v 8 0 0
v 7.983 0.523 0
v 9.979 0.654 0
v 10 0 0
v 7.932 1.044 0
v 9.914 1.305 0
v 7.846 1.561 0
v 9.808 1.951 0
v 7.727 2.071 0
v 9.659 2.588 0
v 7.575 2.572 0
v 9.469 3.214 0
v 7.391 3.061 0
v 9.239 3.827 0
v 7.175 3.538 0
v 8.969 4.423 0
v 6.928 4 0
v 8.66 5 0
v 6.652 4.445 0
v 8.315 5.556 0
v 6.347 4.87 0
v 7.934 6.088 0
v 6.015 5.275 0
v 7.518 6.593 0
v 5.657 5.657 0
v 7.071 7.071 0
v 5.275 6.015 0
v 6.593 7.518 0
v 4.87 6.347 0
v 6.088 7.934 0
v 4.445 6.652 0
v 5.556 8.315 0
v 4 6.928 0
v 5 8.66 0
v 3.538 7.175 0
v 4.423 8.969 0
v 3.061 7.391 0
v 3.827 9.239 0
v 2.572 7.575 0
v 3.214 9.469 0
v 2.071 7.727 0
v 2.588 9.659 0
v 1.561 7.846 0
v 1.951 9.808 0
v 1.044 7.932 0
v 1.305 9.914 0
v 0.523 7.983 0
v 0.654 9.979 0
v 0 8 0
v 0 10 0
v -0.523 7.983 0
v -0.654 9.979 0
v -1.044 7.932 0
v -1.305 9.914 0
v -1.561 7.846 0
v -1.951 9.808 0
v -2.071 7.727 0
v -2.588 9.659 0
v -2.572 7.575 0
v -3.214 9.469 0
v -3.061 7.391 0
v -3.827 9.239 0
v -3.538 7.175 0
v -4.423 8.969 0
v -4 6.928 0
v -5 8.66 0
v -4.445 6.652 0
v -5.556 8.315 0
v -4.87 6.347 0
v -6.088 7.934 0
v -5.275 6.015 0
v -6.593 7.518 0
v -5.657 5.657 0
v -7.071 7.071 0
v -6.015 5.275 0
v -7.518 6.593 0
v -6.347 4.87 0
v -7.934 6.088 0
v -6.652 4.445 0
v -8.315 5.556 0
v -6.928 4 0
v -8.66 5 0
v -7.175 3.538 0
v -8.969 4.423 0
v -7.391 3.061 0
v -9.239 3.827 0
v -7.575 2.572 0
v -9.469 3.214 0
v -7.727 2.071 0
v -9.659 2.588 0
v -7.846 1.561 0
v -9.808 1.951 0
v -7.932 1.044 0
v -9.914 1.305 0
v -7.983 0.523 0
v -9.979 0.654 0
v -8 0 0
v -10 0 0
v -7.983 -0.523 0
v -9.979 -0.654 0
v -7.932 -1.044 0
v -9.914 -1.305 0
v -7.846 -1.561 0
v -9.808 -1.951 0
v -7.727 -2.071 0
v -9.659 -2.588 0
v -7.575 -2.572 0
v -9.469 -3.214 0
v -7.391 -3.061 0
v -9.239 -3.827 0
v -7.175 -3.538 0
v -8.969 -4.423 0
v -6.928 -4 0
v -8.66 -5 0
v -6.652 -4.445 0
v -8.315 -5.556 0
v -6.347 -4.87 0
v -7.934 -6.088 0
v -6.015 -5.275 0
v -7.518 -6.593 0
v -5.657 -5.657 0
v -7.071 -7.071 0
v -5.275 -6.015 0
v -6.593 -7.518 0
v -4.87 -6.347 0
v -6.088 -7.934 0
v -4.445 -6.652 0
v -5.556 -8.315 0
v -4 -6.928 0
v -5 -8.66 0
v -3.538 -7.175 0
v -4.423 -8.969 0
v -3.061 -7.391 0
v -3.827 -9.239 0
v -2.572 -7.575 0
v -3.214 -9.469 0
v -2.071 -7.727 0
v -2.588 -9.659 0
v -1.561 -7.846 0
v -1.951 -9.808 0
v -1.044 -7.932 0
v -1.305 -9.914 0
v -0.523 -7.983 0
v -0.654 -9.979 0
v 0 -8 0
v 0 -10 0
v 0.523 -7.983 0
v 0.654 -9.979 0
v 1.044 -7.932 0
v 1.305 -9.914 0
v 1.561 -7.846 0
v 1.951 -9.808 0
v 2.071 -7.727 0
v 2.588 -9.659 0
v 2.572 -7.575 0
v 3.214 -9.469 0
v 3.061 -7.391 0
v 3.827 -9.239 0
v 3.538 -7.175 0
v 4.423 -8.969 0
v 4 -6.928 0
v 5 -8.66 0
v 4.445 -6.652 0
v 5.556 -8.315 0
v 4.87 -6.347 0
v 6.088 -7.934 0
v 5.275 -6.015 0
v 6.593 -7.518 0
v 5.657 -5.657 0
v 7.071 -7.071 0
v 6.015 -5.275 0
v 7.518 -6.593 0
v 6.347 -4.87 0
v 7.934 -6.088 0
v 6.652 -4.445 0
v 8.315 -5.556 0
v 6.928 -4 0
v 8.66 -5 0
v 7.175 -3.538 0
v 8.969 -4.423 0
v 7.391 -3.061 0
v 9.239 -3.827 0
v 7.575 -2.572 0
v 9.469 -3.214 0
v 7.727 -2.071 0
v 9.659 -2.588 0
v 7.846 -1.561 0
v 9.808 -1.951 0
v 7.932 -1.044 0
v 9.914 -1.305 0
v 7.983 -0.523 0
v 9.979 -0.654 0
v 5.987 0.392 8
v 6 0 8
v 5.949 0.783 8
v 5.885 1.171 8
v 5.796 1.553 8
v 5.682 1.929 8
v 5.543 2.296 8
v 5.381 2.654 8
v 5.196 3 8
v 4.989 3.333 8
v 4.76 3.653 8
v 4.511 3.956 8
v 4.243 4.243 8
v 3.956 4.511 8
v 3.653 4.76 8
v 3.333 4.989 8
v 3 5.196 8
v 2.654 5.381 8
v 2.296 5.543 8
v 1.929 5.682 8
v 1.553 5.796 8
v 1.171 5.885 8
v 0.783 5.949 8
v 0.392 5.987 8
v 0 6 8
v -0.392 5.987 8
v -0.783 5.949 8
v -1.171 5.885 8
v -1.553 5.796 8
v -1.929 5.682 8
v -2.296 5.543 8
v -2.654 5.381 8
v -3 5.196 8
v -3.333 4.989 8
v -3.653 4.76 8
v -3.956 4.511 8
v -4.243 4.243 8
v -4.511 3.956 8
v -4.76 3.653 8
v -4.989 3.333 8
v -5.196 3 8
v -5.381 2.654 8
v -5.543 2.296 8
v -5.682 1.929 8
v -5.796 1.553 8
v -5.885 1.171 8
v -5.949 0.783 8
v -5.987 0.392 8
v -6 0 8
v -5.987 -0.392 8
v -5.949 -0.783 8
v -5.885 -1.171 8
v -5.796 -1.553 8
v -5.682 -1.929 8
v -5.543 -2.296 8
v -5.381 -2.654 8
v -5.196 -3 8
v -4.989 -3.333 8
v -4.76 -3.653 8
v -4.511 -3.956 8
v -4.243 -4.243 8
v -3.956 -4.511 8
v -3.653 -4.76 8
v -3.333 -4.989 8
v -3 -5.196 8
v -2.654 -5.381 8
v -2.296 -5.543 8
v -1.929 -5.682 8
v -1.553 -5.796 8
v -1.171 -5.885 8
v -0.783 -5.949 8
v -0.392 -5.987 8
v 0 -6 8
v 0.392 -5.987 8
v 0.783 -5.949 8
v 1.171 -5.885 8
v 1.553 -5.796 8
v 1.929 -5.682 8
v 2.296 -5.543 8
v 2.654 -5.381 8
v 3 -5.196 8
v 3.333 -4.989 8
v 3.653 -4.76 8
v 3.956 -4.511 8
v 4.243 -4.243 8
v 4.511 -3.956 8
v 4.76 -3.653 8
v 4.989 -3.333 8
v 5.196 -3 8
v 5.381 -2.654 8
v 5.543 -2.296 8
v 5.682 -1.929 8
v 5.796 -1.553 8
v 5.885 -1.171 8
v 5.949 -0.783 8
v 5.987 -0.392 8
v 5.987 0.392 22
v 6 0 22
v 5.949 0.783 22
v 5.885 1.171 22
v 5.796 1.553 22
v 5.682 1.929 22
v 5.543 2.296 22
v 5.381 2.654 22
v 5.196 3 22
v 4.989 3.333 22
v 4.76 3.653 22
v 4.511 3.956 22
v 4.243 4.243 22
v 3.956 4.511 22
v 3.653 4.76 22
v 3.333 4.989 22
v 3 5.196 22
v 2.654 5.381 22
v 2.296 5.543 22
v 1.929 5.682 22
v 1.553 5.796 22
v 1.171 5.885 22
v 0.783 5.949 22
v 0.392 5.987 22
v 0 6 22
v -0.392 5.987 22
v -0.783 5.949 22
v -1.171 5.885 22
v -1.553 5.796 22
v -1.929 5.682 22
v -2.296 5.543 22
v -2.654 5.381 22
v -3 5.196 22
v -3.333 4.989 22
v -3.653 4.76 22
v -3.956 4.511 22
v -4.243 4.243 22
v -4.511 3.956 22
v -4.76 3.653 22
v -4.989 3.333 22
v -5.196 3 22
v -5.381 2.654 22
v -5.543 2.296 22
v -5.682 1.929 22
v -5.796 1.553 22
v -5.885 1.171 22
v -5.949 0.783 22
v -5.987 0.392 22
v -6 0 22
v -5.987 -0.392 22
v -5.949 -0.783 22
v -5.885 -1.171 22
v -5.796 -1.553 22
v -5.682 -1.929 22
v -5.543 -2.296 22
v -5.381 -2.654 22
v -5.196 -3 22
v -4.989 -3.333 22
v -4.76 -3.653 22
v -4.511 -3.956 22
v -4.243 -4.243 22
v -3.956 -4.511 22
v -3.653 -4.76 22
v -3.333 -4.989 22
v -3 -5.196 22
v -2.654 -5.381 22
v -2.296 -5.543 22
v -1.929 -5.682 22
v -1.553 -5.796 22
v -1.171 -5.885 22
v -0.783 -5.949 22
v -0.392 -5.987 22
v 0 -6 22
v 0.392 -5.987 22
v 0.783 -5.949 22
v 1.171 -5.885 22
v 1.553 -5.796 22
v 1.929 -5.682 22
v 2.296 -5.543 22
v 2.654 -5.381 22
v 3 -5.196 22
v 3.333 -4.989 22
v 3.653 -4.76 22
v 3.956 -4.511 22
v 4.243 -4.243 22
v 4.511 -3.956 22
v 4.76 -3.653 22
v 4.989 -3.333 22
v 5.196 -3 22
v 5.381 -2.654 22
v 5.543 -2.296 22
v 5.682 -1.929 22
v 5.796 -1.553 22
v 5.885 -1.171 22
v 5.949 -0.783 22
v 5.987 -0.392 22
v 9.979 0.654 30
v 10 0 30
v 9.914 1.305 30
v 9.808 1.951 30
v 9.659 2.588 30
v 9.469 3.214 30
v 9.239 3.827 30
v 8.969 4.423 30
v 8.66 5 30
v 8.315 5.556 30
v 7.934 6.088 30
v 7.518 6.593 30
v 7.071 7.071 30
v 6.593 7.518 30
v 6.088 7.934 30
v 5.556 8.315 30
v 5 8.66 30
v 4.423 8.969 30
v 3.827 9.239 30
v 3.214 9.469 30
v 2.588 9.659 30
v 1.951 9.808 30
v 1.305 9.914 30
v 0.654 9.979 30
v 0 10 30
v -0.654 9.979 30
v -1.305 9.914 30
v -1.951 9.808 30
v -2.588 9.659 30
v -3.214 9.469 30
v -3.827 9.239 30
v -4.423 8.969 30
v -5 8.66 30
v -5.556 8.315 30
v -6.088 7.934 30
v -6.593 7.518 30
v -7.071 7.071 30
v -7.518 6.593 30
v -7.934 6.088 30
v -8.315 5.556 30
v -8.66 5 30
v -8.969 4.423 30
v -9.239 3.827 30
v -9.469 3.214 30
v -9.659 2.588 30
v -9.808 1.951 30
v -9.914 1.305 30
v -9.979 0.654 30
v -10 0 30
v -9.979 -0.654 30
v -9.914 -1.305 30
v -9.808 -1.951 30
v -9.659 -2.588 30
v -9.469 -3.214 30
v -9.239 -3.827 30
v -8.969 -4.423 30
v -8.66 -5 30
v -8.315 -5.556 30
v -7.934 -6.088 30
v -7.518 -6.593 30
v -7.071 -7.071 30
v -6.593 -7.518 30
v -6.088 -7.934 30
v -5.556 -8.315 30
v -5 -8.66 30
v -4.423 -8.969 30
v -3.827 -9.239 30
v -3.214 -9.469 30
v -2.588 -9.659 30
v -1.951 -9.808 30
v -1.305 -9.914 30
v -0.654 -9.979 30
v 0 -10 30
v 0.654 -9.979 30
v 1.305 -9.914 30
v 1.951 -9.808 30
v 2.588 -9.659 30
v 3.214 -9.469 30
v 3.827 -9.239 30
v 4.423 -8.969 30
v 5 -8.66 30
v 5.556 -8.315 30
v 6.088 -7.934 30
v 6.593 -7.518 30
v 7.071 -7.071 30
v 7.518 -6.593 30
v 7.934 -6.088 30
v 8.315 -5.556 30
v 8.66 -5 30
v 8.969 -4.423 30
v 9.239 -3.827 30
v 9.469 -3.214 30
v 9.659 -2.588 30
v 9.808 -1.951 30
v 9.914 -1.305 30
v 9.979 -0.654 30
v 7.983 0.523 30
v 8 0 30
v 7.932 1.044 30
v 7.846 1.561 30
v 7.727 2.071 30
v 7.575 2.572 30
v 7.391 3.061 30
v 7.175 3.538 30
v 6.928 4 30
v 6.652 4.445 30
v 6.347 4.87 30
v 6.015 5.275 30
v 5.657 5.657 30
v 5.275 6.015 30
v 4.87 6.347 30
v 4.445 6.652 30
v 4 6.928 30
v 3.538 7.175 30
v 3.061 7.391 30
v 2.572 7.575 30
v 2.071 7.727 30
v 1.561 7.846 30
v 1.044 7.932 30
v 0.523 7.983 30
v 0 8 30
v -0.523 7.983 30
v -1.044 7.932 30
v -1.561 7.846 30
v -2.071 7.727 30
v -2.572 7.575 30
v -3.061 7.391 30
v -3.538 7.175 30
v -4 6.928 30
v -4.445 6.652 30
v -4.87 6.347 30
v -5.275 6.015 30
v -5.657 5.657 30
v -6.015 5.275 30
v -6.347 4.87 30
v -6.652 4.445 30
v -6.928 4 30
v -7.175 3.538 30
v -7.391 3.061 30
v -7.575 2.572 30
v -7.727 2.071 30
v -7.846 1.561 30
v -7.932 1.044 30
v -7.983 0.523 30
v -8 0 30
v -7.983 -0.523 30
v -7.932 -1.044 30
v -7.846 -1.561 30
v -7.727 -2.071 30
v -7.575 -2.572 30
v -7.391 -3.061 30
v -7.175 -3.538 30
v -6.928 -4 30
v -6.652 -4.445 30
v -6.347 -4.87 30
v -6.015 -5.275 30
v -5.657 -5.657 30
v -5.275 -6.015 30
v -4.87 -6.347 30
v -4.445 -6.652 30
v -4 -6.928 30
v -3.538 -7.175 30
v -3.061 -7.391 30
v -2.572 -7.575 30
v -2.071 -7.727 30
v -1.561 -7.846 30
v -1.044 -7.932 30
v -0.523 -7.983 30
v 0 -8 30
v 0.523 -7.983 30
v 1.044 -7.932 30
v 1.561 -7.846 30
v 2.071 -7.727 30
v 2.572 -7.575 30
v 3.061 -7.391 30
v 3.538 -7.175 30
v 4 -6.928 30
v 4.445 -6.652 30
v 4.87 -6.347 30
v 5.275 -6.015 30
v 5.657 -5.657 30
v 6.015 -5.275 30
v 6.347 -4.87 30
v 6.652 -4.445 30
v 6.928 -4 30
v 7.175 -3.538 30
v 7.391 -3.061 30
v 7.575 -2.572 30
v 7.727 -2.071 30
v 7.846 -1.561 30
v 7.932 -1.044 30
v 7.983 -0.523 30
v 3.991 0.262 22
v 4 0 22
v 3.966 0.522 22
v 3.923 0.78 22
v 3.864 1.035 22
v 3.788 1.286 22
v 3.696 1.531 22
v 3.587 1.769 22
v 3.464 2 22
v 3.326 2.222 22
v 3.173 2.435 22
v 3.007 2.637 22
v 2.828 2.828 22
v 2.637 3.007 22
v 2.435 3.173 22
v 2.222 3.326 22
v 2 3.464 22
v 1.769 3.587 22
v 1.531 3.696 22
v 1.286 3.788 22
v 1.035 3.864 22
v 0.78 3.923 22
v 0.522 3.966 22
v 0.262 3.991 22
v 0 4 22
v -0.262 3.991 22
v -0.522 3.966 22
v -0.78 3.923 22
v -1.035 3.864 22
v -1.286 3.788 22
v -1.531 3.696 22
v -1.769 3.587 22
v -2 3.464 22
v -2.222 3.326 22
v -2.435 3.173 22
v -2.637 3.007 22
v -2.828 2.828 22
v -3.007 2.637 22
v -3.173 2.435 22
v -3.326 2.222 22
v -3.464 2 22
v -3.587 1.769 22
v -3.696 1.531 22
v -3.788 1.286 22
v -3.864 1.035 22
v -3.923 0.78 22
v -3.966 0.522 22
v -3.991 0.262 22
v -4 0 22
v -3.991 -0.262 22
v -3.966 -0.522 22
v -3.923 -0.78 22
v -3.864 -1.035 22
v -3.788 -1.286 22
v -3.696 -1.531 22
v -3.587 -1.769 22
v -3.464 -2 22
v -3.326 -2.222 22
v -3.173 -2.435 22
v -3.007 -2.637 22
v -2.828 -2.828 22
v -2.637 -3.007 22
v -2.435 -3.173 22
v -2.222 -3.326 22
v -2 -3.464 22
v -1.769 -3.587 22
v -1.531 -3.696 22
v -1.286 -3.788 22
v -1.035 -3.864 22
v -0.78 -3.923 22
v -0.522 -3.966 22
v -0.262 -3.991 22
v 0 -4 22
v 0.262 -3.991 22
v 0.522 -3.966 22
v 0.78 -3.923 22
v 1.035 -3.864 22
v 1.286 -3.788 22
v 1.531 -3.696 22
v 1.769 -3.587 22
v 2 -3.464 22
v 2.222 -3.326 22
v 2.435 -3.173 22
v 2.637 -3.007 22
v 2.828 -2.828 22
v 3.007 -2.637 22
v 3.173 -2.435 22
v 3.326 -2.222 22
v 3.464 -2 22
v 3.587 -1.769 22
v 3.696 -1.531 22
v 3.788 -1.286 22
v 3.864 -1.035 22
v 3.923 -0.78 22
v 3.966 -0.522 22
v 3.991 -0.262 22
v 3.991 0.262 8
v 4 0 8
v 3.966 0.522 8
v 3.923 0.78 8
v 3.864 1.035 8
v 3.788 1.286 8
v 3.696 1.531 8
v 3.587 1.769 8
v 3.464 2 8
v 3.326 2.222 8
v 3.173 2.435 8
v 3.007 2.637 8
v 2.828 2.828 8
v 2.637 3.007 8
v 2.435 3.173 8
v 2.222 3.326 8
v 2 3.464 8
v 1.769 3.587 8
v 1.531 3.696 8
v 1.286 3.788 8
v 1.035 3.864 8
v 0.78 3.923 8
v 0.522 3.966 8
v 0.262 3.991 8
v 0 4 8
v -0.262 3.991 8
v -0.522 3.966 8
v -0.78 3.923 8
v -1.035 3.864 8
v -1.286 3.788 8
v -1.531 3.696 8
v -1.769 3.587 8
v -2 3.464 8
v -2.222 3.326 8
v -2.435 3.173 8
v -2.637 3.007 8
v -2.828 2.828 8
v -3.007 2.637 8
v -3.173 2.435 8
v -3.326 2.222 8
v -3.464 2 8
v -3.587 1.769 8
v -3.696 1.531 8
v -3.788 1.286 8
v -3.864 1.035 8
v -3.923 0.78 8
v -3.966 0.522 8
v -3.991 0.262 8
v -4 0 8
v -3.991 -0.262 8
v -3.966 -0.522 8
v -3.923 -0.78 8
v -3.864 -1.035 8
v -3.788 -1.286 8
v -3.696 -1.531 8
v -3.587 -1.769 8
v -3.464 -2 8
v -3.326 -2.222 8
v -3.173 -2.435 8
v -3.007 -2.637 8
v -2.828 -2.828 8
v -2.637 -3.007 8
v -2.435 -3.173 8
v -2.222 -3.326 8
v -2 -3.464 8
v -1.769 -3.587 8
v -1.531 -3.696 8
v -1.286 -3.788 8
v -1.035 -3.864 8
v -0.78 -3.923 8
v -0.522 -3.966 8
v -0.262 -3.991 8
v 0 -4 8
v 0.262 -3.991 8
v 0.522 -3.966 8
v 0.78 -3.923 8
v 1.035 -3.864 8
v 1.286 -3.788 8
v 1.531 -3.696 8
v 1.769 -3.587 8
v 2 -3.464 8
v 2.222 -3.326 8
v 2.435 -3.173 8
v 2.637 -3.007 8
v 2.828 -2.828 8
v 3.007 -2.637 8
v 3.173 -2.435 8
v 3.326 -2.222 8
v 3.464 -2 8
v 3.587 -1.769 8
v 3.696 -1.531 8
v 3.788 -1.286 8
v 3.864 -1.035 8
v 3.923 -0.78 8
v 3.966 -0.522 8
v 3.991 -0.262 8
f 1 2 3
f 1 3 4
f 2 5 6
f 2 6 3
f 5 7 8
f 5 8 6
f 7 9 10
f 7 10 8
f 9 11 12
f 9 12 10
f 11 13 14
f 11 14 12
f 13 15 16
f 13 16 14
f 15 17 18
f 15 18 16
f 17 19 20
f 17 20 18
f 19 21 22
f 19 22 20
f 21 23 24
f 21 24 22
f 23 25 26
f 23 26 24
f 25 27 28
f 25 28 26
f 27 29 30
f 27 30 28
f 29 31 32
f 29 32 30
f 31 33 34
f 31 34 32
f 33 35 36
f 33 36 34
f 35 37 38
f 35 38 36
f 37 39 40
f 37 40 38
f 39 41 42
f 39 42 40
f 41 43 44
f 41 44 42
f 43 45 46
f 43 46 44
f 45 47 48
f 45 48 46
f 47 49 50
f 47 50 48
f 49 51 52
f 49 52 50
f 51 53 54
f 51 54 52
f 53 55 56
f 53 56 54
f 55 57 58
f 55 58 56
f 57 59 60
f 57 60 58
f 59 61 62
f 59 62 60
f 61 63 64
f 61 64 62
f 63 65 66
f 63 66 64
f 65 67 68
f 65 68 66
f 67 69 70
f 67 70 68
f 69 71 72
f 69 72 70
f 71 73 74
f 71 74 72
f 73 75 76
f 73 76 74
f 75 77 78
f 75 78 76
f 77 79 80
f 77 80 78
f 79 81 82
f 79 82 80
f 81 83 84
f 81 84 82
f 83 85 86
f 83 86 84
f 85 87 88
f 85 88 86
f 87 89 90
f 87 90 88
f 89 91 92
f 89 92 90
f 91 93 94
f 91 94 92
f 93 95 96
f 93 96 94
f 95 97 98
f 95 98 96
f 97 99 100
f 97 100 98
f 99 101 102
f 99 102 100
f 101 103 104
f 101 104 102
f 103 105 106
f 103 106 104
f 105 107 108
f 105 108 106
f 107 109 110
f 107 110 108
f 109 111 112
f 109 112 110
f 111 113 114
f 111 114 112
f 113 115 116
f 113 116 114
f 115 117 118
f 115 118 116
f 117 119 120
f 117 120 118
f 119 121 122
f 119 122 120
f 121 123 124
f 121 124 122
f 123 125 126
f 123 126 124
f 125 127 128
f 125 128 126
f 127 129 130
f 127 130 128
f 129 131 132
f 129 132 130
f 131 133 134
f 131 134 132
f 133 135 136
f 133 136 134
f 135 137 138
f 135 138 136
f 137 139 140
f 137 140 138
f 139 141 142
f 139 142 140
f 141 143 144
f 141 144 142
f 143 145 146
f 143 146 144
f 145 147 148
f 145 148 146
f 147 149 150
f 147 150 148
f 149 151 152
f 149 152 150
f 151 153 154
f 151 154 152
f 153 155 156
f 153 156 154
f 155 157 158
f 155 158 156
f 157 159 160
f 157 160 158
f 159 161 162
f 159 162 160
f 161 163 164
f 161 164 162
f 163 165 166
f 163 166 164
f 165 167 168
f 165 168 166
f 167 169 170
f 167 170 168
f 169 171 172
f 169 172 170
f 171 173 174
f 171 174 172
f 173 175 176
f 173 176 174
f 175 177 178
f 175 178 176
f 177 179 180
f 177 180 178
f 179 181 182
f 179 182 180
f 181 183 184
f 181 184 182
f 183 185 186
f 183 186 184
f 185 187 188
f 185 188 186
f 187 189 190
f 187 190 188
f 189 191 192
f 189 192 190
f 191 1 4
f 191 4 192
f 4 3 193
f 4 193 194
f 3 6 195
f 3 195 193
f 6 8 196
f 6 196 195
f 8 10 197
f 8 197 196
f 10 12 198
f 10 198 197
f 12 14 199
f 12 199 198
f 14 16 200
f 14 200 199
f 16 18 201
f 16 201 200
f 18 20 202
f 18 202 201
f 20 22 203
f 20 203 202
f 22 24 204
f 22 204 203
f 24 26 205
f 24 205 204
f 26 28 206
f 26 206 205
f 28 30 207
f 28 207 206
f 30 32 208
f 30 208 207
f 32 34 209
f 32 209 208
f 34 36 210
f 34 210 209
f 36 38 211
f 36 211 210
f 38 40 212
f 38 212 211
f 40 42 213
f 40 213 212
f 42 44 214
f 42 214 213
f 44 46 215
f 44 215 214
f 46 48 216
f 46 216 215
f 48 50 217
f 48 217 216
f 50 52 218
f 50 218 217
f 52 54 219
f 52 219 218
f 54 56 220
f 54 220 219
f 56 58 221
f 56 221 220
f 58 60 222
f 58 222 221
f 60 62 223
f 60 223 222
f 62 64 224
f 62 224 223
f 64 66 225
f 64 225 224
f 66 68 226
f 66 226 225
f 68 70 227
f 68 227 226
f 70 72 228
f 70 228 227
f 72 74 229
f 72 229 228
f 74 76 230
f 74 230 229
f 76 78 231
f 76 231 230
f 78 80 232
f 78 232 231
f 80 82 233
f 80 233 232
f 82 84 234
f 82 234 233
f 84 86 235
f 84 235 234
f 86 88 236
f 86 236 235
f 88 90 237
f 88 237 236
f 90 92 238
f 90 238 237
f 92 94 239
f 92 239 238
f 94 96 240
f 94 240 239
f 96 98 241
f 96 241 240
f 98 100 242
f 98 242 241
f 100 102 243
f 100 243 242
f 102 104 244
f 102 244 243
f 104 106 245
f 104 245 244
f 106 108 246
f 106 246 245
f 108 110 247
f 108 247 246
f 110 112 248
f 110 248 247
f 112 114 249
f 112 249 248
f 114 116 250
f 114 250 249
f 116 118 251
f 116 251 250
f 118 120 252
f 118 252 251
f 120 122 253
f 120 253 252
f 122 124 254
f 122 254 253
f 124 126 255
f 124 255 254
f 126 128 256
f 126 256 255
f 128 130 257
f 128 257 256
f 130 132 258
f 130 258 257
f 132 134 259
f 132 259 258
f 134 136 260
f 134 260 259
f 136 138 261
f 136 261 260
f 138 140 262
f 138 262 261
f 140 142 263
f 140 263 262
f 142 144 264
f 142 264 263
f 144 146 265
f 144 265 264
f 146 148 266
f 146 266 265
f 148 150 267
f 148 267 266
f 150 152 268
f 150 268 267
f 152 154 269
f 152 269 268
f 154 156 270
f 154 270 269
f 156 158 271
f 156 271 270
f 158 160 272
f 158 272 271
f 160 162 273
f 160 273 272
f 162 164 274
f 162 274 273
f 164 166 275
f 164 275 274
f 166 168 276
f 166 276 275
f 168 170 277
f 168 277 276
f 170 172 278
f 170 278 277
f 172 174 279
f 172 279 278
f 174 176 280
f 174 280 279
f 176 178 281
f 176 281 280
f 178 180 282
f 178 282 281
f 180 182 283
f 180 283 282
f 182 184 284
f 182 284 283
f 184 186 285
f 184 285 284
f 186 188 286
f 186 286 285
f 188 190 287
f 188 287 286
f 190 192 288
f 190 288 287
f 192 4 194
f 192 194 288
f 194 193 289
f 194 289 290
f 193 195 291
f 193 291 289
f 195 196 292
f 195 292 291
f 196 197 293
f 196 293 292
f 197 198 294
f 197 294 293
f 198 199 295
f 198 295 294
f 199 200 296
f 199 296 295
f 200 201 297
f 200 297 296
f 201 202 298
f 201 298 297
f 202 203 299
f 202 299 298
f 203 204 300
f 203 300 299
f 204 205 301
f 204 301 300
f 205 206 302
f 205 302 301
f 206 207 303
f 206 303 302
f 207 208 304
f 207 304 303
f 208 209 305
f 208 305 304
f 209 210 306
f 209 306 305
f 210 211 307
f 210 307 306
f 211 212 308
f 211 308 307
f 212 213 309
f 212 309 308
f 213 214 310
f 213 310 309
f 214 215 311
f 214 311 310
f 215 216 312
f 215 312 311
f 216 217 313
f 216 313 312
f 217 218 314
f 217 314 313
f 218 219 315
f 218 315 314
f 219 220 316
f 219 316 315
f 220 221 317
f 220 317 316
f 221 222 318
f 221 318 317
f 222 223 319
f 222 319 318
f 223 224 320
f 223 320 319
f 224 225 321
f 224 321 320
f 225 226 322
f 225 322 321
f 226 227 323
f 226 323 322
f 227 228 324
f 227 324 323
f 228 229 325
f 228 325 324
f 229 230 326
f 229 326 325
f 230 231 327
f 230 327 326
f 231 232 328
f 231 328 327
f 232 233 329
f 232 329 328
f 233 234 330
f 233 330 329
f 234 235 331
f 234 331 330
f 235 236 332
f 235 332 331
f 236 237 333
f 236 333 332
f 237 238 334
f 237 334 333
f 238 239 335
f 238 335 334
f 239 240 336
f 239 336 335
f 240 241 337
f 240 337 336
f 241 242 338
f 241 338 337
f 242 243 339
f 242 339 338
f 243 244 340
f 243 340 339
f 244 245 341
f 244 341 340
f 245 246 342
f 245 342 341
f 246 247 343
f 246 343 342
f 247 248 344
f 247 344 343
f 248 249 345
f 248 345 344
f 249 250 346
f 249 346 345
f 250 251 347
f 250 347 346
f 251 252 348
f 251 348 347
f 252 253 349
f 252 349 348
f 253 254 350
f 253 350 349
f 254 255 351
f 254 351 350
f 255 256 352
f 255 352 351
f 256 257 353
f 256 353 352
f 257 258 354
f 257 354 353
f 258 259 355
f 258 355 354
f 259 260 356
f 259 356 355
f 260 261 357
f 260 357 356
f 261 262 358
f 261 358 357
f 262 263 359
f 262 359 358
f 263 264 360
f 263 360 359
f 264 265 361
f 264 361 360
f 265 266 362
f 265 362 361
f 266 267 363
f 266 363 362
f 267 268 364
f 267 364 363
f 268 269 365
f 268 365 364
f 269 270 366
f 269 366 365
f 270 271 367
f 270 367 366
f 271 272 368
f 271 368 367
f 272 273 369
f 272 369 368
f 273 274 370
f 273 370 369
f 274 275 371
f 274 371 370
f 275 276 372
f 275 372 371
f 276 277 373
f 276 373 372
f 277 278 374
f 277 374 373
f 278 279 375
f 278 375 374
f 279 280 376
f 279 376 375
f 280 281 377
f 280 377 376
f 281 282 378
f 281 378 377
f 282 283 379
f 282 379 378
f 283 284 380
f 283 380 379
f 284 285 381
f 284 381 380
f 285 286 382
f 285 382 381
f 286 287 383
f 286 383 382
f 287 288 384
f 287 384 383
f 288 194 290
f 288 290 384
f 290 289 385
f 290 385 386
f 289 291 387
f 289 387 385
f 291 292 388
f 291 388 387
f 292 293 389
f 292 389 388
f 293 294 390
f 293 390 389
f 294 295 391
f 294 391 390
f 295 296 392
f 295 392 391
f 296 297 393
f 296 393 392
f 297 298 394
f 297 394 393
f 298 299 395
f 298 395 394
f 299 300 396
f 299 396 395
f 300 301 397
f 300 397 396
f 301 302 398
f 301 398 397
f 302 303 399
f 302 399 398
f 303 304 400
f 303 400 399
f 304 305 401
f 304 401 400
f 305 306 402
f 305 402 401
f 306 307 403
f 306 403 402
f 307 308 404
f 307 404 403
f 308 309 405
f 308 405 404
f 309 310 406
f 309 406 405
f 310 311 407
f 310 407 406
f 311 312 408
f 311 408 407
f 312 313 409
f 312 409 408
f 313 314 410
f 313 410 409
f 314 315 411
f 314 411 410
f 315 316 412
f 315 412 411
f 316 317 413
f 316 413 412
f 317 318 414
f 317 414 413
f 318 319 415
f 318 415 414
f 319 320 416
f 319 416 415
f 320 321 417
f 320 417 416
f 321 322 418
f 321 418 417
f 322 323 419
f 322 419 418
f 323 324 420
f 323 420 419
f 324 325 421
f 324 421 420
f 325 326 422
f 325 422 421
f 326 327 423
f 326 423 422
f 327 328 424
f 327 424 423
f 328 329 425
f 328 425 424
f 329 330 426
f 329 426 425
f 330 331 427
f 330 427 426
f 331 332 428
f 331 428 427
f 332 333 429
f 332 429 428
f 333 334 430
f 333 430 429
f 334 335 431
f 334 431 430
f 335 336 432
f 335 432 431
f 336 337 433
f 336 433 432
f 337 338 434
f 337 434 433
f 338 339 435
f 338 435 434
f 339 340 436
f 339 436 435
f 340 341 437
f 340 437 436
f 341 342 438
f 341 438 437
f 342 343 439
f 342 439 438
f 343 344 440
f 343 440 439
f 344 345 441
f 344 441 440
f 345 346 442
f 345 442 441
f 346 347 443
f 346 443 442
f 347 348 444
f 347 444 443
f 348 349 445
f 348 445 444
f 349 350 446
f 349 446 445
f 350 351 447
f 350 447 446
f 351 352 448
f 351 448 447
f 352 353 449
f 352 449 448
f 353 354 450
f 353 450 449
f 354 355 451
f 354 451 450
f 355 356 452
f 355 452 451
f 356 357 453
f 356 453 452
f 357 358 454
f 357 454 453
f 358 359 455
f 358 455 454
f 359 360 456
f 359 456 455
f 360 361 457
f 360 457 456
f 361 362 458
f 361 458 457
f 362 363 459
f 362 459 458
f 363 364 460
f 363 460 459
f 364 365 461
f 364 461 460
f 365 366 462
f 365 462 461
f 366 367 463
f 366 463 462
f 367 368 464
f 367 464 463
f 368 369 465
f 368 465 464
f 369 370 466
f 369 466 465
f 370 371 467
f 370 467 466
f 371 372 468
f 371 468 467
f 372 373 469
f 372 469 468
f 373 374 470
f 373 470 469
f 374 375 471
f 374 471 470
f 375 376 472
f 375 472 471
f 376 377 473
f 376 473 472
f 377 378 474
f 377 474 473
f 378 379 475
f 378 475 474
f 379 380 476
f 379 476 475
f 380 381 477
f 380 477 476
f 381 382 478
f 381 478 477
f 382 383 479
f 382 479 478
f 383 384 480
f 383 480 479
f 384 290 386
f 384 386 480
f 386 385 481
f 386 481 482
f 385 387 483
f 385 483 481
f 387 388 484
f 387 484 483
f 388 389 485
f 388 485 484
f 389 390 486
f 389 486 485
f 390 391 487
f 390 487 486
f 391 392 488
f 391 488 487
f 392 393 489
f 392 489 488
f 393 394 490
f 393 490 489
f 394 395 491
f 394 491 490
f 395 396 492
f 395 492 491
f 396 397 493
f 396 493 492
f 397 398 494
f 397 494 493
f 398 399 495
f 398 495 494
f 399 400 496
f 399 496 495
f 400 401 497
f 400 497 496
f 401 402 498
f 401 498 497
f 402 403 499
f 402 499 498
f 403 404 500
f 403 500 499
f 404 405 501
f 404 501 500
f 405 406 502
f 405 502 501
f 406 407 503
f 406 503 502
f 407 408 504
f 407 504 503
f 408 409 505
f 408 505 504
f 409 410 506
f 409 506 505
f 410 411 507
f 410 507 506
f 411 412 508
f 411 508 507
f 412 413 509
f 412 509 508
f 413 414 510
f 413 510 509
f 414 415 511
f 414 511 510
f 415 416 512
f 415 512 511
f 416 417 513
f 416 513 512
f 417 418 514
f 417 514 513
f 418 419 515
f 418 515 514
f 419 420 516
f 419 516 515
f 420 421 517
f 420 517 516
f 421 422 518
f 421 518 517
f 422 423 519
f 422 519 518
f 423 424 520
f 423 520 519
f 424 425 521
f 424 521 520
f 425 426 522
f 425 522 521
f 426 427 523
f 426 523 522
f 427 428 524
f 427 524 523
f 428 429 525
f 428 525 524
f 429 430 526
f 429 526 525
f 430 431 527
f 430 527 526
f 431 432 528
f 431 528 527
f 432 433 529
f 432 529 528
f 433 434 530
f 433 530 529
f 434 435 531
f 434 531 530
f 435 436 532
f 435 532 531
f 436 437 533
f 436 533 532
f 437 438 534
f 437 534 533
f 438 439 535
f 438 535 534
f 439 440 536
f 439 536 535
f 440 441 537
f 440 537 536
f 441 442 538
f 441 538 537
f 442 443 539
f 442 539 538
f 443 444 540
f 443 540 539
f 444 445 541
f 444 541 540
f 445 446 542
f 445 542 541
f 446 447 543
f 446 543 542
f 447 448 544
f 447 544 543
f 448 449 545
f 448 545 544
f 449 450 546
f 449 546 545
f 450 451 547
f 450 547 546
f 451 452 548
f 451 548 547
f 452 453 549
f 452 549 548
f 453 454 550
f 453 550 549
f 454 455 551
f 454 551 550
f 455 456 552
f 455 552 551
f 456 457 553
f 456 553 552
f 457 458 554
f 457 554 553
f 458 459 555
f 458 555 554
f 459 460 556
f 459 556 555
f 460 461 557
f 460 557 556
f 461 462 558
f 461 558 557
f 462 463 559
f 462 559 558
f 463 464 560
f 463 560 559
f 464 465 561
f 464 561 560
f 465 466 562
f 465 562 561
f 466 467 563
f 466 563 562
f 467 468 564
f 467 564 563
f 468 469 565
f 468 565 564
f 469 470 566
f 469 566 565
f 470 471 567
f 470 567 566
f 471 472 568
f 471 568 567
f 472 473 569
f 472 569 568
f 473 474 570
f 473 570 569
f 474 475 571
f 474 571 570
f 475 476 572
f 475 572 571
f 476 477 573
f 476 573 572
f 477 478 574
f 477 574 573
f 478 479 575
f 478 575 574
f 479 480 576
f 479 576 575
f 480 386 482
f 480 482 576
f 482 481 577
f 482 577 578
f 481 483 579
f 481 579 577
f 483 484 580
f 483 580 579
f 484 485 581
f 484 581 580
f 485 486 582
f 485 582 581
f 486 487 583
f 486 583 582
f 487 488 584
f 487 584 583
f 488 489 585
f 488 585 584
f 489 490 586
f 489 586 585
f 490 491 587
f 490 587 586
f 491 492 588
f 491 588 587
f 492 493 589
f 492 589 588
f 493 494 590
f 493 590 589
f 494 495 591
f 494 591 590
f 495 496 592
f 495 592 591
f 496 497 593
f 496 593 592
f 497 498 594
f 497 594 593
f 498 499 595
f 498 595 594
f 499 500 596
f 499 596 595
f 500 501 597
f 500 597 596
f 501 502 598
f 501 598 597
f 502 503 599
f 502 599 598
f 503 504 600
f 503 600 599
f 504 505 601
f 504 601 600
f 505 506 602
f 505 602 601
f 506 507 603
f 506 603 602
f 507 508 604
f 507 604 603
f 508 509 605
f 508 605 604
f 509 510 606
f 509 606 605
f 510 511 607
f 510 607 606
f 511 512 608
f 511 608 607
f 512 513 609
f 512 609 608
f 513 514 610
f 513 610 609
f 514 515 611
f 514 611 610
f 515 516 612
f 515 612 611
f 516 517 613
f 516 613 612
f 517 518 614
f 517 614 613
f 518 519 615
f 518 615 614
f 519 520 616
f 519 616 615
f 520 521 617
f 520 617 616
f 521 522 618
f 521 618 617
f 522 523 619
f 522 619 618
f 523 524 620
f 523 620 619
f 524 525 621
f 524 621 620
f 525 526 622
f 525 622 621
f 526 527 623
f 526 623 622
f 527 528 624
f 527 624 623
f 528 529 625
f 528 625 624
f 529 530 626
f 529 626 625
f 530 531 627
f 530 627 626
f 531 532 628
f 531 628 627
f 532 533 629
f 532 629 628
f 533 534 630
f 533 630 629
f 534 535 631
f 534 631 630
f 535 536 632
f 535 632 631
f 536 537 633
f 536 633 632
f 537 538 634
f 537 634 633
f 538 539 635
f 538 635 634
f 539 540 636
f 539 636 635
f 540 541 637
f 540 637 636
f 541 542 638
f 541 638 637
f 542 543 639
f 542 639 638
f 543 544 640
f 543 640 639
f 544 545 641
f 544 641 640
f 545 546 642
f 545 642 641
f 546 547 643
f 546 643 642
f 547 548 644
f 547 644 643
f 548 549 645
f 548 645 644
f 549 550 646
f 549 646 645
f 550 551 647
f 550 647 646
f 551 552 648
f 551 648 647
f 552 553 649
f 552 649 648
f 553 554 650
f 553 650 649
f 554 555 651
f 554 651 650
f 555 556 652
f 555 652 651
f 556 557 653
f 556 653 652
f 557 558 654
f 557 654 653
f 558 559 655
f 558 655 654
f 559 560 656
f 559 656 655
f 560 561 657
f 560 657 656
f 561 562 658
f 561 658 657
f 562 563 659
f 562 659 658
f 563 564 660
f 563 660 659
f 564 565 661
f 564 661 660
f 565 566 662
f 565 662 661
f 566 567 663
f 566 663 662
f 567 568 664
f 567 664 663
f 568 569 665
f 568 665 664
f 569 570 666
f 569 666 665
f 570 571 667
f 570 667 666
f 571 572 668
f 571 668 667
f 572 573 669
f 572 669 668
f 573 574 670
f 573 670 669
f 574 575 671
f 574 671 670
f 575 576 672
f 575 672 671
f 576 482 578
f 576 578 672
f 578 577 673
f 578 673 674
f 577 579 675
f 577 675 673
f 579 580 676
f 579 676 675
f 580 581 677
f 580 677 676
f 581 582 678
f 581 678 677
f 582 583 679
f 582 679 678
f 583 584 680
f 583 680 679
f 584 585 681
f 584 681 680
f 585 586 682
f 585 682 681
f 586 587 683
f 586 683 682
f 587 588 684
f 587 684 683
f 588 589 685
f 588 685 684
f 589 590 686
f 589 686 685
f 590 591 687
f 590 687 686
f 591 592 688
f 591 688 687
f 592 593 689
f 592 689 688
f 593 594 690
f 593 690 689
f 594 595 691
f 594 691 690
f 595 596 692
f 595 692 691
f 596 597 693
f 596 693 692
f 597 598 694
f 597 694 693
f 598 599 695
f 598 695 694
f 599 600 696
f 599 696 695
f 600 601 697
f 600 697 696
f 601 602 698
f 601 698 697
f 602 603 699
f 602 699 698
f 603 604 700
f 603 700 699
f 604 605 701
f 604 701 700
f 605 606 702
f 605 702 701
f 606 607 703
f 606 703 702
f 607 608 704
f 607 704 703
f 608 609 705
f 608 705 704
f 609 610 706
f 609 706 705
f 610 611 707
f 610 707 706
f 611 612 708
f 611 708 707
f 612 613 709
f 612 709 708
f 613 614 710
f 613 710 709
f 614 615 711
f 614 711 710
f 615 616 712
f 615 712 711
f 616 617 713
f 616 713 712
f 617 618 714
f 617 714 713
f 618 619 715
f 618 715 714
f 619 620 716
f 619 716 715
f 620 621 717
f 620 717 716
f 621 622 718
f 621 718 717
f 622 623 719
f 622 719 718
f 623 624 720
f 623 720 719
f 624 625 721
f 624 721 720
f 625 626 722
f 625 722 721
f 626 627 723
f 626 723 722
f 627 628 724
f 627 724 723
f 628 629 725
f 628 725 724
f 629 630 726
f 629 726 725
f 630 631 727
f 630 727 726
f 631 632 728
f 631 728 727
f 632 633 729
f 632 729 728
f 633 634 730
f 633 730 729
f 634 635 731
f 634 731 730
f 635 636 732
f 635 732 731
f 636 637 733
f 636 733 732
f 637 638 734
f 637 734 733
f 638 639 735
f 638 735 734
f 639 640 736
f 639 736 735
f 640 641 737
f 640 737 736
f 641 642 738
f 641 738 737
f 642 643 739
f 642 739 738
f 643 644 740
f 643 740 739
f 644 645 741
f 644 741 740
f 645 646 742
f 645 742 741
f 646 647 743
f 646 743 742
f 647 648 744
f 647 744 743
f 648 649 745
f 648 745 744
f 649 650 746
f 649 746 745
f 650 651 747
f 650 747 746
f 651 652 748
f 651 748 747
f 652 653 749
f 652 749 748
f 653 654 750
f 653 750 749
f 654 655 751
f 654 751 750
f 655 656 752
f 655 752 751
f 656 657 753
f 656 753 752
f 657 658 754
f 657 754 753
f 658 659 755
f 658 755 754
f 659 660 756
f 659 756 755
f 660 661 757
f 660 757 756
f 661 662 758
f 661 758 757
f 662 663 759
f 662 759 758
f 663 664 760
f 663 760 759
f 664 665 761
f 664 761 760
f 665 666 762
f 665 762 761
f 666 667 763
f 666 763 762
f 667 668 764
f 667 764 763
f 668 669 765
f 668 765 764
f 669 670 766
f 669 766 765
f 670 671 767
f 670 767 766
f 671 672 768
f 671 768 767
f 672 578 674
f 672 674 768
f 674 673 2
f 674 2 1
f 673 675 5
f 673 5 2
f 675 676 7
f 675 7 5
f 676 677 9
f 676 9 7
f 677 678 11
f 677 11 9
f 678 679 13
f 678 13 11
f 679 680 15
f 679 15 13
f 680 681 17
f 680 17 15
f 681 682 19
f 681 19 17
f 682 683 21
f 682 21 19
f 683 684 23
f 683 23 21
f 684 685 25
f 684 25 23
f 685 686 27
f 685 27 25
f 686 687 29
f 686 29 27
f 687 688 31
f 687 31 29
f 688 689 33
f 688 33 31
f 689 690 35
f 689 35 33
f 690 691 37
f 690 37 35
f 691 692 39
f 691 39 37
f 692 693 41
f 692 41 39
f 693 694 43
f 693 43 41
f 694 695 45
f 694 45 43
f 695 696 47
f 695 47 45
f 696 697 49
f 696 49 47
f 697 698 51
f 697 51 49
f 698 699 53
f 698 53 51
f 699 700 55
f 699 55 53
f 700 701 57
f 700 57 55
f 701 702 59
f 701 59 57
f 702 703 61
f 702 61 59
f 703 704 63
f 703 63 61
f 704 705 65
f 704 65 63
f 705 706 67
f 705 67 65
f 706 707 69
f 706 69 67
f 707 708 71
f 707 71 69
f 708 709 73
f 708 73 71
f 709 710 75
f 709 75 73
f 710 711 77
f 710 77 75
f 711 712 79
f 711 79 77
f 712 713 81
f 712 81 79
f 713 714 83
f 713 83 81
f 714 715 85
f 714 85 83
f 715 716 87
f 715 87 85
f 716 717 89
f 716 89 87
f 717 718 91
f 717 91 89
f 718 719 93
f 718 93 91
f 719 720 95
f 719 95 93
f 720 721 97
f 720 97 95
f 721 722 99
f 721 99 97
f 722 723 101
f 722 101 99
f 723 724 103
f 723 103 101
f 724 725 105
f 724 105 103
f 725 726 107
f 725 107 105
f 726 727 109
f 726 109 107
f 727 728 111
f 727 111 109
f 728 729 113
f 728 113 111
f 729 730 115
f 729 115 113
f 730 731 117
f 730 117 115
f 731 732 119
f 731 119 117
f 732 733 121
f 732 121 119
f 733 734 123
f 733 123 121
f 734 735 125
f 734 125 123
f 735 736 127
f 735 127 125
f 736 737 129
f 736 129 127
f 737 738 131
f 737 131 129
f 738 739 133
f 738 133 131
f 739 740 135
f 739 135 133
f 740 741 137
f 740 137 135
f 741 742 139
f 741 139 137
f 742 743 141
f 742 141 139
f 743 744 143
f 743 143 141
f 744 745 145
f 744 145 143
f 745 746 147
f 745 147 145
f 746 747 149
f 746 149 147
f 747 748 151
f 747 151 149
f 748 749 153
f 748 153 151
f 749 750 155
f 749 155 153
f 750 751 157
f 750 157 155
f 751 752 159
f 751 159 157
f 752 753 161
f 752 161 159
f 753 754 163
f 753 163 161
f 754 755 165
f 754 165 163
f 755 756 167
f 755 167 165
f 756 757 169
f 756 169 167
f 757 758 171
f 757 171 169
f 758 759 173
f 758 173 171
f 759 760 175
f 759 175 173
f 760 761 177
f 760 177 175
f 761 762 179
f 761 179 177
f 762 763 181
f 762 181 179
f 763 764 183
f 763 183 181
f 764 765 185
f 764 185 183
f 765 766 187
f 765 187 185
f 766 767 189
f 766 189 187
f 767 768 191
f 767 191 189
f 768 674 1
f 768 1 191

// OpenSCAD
// Original MechIntel educational model. CC0-1.0. Units: mm.
// Not a standardized or load-rated component.
$fn=96;
// Section points: [radius, height], mm. Edit to change the profile.
section=[[8, 0], [10, 0], [6, 8], [6, 22], [10, 30], [8, 30], [4, 22], [4, 8]];
rotate_extrude($fn=96) polygon(points=section);
